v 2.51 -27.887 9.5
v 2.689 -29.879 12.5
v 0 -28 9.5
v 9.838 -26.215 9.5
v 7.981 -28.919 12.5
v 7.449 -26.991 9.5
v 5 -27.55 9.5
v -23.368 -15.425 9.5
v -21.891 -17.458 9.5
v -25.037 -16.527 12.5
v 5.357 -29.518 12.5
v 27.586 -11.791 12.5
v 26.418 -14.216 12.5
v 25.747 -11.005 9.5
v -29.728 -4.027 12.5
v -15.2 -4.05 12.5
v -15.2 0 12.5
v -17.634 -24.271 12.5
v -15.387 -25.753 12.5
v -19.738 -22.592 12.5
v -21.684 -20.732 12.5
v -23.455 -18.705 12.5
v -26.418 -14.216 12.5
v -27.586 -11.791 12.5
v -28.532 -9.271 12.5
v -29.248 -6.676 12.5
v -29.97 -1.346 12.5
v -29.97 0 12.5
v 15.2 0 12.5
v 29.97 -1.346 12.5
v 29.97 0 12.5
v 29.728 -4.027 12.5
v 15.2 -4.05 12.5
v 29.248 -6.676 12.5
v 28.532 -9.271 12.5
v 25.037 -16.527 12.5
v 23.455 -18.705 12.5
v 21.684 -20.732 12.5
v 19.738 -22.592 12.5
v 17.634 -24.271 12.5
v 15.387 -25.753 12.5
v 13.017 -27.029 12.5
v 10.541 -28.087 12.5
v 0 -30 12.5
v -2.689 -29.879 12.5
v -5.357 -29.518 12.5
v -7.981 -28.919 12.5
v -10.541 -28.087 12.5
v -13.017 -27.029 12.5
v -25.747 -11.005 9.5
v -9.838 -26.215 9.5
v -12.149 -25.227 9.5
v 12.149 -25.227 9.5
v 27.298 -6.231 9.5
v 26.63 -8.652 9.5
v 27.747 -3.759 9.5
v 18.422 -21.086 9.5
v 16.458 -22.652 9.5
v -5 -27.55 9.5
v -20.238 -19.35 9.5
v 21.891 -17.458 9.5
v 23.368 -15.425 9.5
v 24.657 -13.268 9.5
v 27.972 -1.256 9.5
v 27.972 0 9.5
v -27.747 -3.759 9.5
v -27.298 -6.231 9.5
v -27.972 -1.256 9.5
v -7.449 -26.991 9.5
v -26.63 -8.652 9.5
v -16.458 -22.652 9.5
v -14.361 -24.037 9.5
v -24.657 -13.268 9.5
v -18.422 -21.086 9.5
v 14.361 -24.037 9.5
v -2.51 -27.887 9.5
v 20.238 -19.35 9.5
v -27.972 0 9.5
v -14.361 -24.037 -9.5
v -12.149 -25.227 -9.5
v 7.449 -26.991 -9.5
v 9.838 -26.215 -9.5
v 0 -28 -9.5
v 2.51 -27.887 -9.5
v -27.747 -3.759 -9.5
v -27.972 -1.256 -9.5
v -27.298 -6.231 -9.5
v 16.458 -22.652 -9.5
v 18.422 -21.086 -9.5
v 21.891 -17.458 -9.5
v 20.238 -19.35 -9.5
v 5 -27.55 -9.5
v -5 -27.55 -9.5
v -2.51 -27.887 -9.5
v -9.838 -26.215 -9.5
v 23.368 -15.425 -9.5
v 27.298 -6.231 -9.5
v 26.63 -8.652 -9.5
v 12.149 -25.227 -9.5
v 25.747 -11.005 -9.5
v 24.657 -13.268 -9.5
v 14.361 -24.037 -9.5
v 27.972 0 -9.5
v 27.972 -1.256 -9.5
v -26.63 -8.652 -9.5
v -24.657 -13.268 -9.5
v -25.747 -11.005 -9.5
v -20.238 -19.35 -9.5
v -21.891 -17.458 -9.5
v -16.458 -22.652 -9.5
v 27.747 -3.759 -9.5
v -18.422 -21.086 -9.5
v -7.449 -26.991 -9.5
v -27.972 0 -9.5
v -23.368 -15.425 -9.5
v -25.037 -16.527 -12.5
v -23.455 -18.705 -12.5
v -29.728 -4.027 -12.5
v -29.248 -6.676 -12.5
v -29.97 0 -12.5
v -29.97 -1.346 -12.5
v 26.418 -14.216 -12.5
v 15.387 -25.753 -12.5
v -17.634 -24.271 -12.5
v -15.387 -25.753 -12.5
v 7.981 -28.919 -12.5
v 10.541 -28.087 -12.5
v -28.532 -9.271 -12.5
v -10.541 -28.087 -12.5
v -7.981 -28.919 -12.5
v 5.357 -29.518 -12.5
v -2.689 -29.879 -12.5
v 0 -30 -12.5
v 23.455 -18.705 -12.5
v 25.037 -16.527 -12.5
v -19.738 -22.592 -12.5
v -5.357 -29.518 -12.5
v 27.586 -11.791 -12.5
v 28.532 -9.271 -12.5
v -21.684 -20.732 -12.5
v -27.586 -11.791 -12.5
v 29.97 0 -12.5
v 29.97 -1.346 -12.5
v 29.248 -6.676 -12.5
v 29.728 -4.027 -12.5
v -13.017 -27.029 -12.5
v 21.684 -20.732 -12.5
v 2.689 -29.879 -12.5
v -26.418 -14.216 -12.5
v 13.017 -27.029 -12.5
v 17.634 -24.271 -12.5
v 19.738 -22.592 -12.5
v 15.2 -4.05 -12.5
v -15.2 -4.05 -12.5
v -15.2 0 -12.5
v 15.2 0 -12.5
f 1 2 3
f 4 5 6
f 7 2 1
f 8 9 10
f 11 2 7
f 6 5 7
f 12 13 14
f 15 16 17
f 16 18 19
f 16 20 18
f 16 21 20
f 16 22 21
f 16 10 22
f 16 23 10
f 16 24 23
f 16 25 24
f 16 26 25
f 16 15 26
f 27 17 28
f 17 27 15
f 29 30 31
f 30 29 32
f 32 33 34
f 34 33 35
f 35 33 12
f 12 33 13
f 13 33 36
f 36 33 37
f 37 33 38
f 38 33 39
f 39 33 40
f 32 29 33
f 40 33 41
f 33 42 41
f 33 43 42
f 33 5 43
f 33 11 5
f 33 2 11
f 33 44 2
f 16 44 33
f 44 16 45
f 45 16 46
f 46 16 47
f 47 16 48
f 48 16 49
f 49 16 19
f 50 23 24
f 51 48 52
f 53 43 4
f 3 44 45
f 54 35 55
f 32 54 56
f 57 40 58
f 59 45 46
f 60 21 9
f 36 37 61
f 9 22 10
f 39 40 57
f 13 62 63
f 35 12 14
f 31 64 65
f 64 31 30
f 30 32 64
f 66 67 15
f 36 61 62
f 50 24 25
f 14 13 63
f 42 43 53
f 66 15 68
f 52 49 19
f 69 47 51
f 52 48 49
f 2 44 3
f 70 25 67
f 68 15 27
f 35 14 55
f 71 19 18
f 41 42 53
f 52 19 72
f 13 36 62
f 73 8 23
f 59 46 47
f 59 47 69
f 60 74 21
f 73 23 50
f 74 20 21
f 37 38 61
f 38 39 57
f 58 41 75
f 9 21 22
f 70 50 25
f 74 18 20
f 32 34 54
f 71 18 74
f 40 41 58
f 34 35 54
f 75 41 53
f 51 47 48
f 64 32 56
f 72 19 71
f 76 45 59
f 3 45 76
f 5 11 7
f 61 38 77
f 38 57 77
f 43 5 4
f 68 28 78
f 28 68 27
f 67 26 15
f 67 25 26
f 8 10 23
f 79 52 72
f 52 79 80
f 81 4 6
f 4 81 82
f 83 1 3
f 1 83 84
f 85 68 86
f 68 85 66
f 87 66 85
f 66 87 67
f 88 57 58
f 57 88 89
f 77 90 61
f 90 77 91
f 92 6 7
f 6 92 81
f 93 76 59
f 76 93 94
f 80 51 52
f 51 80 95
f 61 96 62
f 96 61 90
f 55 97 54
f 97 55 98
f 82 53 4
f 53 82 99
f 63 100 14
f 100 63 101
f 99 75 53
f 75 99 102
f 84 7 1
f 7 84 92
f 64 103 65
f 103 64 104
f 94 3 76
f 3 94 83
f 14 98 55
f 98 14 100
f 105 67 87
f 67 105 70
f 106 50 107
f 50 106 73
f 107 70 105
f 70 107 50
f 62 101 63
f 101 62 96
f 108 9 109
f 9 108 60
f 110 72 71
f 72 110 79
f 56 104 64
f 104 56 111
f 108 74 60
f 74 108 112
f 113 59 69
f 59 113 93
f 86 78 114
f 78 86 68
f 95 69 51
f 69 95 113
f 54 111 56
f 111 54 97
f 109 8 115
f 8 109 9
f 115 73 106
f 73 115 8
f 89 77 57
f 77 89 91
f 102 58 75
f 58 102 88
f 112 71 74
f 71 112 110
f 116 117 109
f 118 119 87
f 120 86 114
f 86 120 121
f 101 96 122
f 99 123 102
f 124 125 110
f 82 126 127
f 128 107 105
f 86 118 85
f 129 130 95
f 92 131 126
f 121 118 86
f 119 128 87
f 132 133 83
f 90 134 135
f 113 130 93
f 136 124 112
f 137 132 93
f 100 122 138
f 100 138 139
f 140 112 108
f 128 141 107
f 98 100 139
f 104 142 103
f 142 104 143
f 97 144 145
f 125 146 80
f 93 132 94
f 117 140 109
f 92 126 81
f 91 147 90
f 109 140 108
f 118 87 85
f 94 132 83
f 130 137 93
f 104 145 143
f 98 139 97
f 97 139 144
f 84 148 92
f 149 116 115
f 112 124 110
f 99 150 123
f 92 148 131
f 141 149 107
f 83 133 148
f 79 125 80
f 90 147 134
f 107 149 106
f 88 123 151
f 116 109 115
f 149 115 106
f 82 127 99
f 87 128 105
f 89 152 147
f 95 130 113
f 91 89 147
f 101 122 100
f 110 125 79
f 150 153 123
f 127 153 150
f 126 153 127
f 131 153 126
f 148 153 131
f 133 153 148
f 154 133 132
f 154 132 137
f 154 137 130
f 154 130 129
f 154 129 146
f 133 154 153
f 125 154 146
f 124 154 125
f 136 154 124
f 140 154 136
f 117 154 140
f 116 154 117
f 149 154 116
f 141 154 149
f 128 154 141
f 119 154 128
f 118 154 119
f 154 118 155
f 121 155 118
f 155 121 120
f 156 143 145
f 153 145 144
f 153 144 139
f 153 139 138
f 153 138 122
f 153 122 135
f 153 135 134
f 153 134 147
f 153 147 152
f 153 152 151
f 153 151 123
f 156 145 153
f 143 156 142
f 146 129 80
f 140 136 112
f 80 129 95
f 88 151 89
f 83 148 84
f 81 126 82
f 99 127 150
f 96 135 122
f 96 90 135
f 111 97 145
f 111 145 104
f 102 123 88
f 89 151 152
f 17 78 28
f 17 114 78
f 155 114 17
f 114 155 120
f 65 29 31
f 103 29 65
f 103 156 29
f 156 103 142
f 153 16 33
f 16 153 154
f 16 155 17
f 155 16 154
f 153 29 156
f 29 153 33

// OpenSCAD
/* 
* File : phholder_p2.scad (was: phone_holder_print2.scad)
* Author : witabix33  (https://github.com/witabix33)
* Description : A very simple phone headset holder that can be placed on a work position separator
*
* This is the main file to print HEADPHONE HOLDER only
* File name has been shortened to help conversion to STL and GCOD that printers like being short
*
* Version 04 bld 28.04.2023
*/
include <phone_holder_parts.scad>


$fa = 1;
$fs = 0.4;
$fn = 70;  // resolution may be increased to have a better result
/* main_assemble module - final assembly
 * isTextEnabled : true => also print text
  * hasPin : true=> draw pins / false => draw holes
 */
module main_assemble(isTextEnabled=false, hasPin=false) {
    printDistance=15; // distance between parts
/**    
    // draw holder frame part
    rotate([0,90,0])
        translate([-default_holder_width/2,0,0])
            part_holder_frame();
**/  
/**      
    headphones_y_distance = printDistance*2.5;
    translate([0, headphones_y_distance, default_ph_width/2 ])
    **/
        rotate([00,0,90])
            part_headphones_holder();  // ! bug ! don't invoke hasPin param
/**
    // draw add advertiser part with default_demo_separate distance
    advertiser_y_distance = headphones_y_distance + default_ph_width + printDistance;
    translate([0,advertiser_y_distance,default_holder_part_height/2 ])
        rotate([00, 00, 00])
        part_advertise(isTextEnabled=isTextEnabled, hasPin=hasPin);      
        
    // draw pins not within parts
    pin_y_distance=-default_holder_h1_length/2;
    if (! hasPin) {
        translate([0 ,pin_y_distance, +default_assembly_height/2 ])
            part_assembly_pin(aWidth=default_assembly_height*3/2); // pin for advertise support
                       
    }
    **/
}
 main_assemble(isTextEnabled=true, hasPin=false);
